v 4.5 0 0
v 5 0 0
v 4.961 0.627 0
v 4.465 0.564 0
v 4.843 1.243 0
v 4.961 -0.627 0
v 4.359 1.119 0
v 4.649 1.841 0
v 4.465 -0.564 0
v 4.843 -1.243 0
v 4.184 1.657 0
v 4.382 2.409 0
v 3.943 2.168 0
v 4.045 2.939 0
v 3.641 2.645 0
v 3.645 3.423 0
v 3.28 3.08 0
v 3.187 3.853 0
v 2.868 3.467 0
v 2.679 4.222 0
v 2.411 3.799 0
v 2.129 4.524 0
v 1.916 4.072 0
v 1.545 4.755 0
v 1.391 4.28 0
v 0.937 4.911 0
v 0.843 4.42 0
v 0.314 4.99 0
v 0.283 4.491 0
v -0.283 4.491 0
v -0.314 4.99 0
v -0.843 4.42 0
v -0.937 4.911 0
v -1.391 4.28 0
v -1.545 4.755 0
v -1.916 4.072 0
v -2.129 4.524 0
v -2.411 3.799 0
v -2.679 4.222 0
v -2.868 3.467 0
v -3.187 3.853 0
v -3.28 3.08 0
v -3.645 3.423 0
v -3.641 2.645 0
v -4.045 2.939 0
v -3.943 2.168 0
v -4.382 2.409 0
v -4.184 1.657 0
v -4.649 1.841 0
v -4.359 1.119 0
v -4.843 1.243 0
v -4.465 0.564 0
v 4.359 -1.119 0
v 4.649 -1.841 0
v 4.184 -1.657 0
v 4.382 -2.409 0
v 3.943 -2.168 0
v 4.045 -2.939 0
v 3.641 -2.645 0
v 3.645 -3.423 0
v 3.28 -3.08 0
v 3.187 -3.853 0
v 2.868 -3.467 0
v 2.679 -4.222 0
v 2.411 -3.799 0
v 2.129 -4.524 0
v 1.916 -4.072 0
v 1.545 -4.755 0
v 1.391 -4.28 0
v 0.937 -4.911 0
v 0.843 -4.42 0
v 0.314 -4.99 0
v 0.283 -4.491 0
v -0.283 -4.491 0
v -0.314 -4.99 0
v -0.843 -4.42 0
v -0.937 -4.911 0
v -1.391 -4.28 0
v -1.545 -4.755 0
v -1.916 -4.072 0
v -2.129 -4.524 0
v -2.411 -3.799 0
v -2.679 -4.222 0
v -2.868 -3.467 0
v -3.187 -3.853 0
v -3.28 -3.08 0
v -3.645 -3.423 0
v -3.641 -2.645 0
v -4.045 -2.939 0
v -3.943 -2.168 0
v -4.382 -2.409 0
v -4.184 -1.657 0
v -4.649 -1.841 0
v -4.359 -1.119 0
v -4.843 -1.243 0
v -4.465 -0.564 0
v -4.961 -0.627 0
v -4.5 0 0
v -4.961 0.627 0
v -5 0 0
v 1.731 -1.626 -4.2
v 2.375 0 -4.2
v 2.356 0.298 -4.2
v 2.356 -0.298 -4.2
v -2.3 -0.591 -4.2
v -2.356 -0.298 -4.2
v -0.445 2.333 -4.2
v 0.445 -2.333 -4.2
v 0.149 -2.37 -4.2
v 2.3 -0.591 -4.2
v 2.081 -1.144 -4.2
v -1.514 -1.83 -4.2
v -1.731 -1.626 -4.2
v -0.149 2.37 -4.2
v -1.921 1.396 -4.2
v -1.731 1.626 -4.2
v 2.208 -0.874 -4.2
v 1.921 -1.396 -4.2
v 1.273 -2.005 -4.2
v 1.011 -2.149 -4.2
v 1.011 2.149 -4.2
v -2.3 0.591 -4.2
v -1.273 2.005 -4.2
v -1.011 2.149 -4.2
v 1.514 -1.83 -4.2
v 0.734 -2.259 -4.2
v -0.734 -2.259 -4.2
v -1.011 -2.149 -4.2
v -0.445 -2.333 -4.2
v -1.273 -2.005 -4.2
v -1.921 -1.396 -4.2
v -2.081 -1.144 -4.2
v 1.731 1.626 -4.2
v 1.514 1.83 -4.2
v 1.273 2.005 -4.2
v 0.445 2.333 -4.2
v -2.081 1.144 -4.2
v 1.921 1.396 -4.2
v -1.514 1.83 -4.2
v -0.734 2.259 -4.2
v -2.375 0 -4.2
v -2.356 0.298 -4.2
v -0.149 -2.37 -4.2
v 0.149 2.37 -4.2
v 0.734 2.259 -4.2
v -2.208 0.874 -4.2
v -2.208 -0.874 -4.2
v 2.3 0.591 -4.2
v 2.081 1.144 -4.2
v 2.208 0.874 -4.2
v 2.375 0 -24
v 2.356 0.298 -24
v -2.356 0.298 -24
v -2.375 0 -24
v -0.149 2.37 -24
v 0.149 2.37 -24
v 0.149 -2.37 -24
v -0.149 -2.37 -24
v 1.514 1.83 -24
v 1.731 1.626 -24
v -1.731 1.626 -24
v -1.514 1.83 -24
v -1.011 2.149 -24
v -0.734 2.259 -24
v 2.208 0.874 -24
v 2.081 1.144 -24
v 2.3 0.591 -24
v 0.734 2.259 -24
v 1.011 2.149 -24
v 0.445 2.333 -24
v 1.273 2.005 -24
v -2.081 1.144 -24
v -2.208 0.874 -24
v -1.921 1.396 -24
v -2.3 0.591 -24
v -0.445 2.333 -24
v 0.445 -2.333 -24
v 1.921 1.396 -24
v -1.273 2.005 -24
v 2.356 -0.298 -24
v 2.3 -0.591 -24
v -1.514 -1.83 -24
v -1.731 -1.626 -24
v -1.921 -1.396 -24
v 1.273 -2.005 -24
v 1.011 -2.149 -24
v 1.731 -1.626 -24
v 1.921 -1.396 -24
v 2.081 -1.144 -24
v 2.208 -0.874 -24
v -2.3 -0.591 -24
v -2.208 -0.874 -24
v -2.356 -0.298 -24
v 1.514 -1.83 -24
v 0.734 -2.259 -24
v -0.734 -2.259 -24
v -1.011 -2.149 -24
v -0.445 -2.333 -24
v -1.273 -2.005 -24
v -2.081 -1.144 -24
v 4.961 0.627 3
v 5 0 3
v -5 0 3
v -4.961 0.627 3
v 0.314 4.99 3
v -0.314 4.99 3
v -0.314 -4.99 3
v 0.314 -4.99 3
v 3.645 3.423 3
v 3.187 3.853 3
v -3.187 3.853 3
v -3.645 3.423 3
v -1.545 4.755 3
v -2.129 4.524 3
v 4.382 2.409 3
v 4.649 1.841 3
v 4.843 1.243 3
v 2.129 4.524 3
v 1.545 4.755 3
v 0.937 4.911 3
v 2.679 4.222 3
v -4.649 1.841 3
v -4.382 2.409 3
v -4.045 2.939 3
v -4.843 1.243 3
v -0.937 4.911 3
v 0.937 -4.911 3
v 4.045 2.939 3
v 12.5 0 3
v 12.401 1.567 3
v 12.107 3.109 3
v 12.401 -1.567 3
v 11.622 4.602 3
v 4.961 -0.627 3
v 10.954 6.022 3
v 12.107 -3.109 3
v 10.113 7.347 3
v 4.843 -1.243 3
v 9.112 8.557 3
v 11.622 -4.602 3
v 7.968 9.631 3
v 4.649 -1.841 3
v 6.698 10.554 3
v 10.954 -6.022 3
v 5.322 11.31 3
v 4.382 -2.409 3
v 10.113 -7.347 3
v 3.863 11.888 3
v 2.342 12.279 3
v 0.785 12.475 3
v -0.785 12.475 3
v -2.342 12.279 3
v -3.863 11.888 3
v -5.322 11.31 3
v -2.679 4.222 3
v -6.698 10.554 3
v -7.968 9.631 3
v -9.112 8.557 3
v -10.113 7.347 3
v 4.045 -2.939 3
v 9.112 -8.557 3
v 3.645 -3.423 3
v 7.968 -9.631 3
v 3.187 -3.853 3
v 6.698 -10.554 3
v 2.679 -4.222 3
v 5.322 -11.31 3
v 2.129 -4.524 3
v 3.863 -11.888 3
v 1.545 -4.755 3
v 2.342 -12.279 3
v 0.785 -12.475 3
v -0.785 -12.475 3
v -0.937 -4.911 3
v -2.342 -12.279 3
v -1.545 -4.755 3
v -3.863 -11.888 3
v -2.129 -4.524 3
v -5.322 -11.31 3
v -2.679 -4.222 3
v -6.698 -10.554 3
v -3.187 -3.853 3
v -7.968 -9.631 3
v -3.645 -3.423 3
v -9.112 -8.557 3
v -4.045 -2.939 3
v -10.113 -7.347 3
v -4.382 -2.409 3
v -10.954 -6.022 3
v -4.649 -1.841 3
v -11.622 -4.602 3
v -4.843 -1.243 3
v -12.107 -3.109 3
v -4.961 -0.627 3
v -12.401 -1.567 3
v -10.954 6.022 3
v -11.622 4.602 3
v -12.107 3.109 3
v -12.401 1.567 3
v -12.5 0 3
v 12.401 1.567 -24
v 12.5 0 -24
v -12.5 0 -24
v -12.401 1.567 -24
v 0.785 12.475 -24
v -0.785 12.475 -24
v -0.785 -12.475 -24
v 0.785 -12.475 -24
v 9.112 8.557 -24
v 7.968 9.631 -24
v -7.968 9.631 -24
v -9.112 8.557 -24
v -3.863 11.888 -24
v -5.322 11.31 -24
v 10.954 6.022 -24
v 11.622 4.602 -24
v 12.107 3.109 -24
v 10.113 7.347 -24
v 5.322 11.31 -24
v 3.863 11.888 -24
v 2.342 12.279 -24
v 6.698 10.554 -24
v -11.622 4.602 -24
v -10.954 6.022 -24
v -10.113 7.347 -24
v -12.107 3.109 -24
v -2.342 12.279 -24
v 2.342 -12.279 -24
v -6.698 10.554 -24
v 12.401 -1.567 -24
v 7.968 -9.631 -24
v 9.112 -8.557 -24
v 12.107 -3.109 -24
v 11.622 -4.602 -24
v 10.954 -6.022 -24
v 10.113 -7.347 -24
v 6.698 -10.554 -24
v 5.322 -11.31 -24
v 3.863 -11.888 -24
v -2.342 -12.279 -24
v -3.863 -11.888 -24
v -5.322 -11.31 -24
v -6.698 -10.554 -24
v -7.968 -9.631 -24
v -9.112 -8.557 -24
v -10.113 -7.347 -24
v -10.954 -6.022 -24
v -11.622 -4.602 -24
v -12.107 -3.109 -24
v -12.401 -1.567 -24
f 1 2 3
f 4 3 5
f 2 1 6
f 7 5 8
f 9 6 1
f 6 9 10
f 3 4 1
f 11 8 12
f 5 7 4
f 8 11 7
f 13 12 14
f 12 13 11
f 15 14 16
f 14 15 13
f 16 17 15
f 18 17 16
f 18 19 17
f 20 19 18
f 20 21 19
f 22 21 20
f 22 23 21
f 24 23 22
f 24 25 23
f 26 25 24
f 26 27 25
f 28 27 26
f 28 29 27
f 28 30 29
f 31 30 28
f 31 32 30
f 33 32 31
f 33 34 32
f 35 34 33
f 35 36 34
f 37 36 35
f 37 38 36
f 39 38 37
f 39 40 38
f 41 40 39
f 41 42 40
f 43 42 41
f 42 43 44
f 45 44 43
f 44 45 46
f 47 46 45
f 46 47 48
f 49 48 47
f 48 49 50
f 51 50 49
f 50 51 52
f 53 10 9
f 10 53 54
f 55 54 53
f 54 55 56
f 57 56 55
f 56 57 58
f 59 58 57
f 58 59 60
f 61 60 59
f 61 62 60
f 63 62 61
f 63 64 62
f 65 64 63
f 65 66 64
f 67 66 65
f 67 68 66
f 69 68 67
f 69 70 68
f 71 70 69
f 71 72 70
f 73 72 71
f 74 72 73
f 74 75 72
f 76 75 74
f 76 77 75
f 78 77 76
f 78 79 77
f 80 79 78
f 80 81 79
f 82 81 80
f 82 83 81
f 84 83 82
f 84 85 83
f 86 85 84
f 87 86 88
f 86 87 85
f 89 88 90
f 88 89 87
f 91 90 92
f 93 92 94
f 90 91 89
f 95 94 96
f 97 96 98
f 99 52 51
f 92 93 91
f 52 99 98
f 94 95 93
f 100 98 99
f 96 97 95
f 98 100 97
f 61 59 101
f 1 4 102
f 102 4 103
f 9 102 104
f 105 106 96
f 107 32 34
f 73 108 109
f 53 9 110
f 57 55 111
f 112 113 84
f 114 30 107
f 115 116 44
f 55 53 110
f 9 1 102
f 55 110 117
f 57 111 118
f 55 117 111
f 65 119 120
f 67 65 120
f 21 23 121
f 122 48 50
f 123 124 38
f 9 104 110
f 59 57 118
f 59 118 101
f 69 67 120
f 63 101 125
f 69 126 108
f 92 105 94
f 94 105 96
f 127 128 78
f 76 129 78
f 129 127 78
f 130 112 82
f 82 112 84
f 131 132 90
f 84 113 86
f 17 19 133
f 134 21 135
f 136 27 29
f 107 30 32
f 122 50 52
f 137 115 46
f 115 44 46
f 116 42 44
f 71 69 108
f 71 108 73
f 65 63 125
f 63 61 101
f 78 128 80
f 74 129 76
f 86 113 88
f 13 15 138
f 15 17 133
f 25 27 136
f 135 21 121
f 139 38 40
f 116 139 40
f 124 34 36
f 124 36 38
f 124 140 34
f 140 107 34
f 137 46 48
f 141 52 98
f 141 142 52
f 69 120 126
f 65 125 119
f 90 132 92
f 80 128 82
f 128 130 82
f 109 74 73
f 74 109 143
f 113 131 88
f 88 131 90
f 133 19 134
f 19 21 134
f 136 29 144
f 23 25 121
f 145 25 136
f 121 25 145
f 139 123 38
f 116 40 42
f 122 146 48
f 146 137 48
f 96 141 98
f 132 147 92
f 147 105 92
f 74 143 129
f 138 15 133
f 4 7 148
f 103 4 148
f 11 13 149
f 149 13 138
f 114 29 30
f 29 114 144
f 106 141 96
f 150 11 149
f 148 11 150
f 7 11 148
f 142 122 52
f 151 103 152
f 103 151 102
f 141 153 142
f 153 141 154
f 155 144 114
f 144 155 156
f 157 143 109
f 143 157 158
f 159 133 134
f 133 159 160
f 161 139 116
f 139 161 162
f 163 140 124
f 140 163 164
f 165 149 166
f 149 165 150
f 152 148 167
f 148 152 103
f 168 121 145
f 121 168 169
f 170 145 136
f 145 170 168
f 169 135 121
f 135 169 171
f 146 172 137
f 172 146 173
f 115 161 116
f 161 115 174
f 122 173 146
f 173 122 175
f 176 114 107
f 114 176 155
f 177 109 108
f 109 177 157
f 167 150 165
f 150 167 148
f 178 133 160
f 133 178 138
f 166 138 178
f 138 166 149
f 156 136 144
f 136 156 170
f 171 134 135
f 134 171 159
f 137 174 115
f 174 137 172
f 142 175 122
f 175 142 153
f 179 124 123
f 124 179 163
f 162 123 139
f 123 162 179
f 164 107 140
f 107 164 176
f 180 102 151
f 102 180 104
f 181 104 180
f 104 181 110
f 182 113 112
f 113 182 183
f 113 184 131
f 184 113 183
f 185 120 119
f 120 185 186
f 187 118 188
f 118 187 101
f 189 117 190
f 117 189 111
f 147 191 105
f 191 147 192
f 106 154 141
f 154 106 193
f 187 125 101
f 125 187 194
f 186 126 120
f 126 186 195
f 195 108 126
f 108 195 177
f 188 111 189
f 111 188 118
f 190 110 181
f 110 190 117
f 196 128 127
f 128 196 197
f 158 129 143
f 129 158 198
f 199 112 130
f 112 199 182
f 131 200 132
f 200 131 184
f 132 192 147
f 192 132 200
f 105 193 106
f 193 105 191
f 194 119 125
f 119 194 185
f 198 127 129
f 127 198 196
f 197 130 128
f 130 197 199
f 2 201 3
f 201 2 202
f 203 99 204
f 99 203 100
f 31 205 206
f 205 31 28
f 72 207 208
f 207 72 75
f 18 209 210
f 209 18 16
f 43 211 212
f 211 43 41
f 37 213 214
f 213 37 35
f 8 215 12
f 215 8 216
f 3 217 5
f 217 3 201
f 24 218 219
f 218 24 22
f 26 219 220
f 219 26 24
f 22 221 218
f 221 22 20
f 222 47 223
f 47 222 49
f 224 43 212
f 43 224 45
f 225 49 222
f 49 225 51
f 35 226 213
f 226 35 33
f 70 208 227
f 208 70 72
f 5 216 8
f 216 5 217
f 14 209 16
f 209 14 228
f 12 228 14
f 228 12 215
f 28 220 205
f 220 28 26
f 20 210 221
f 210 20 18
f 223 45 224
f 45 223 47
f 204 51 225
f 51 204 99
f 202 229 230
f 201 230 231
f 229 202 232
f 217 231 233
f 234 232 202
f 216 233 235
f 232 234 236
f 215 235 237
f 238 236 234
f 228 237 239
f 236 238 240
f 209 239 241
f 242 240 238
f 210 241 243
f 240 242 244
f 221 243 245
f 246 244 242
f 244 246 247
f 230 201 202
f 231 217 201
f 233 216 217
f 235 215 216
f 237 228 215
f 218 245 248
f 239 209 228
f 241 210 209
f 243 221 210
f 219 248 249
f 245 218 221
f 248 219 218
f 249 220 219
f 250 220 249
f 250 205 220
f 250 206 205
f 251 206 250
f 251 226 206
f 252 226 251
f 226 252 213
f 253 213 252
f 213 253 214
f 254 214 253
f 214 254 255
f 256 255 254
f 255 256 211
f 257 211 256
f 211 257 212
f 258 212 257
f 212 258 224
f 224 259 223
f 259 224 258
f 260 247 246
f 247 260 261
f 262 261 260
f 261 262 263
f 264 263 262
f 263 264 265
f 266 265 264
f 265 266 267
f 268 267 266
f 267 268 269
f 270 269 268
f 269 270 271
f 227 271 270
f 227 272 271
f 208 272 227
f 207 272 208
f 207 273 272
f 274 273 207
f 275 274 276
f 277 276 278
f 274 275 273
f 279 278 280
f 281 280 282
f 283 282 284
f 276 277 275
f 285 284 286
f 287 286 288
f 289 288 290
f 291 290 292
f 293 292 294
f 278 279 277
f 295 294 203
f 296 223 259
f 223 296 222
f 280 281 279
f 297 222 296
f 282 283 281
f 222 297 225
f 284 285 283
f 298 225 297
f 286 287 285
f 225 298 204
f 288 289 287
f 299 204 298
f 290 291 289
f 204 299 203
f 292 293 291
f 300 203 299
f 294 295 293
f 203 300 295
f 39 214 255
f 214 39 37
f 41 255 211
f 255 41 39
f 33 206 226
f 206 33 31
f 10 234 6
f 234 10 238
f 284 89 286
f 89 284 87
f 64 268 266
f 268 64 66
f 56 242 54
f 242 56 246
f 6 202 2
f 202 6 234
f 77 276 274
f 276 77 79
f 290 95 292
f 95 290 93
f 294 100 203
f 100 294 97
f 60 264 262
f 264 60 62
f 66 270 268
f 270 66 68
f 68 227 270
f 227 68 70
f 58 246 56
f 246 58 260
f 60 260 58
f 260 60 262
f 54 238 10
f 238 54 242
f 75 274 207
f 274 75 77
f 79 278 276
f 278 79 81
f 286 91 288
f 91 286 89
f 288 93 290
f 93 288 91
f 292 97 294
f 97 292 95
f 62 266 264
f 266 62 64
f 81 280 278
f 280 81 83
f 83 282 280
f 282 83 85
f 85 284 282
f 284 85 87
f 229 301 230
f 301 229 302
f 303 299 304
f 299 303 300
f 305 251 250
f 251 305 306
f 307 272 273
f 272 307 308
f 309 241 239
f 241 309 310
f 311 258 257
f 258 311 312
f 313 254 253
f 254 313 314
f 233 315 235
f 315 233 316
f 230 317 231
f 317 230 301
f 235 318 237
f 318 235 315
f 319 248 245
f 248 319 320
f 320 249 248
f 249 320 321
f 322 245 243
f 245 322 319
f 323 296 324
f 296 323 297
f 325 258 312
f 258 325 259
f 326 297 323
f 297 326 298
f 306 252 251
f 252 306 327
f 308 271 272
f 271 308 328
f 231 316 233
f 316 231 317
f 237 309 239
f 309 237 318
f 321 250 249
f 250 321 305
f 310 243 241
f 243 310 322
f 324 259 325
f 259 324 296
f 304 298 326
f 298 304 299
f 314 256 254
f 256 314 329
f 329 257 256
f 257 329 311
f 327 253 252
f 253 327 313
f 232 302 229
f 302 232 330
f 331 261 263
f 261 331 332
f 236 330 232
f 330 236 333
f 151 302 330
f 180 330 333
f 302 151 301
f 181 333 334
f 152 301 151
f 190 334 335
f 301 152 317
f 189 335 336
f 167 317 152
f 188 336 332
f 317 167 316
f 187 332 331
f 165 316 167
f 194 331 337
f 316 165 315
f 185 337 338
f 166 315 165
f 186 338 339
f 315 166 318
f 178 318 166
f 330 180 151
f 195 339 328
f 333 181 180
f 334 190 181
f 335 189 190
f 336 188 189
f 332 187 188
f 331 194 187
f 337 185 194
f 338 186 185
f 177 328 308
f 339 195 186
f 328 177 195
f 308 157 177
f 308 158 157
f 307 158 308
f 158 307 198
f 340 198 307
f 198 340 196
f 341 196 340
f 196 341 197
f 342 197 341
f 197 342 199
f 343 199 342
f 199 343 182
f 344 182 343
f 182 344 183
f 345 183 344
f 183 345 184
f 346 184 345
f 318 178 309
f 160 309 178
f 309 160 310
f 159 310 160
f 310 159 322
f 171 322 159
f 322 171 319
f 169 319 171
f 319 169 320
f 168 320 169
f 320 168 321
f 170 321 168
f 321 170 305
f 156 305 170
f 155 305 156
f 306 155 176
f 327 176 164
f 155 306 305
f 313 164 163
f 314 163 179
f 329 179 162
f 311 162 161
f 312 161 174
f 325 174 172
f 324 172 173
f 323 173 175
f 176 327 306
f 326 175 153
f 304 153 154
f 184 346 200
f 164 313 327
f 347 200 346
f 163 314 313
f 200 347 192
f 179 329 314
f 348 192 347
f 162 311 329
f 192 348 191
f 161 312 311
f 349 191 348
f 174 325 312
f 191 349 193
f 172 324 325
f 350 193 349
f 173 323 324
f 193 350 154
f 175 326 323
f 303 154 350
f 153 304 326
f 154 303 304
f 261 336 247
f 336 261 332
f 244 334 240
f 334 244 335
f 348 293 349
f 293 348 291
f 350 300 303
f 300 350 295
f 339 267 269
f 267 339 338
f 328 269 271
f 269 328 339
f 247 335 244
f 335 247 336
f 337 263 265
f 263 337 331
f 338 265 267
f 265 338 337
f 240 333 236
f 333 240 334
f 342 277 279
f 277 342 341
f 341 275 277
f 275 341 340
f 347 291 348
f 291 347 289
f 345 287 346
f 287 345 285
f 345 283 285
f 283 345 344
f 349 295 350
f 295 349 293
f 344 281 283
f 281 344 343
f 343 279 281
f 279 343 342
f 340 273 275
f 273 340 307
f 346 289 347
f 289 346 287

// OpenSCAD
$fn = 50;

difference() {
	union() {
		translate(v = [0, 0, -24.0]) {
			cylinder(h = 27, r = 12.5);
		}
	}
	union() {
		translate(v = [0, 0, 0]) {
			rotate(a = [0, 0, 0]) {
				difference() {
					union() {
						translate(v = [0, 0, -27.0]) {
							cylinder(h = 27, r = 2.25);
						}
						translate(v = [0, 0, -4.2]) {
							cylinder(h = 4.2, r1 = 2.375, r2 = 4.5);
						}
						translate(v = [0, 0, -27.0]) {
							cylinder(h = 27, r = 2.375);
						}
						translate(v = [0, 0, -27.0]) {
							cylinder(h = 27, r = 2.25);
						}
					}
					union();
				}
			}
		}
		#cylinder(h = 3, r = 5.0);
	}
}
